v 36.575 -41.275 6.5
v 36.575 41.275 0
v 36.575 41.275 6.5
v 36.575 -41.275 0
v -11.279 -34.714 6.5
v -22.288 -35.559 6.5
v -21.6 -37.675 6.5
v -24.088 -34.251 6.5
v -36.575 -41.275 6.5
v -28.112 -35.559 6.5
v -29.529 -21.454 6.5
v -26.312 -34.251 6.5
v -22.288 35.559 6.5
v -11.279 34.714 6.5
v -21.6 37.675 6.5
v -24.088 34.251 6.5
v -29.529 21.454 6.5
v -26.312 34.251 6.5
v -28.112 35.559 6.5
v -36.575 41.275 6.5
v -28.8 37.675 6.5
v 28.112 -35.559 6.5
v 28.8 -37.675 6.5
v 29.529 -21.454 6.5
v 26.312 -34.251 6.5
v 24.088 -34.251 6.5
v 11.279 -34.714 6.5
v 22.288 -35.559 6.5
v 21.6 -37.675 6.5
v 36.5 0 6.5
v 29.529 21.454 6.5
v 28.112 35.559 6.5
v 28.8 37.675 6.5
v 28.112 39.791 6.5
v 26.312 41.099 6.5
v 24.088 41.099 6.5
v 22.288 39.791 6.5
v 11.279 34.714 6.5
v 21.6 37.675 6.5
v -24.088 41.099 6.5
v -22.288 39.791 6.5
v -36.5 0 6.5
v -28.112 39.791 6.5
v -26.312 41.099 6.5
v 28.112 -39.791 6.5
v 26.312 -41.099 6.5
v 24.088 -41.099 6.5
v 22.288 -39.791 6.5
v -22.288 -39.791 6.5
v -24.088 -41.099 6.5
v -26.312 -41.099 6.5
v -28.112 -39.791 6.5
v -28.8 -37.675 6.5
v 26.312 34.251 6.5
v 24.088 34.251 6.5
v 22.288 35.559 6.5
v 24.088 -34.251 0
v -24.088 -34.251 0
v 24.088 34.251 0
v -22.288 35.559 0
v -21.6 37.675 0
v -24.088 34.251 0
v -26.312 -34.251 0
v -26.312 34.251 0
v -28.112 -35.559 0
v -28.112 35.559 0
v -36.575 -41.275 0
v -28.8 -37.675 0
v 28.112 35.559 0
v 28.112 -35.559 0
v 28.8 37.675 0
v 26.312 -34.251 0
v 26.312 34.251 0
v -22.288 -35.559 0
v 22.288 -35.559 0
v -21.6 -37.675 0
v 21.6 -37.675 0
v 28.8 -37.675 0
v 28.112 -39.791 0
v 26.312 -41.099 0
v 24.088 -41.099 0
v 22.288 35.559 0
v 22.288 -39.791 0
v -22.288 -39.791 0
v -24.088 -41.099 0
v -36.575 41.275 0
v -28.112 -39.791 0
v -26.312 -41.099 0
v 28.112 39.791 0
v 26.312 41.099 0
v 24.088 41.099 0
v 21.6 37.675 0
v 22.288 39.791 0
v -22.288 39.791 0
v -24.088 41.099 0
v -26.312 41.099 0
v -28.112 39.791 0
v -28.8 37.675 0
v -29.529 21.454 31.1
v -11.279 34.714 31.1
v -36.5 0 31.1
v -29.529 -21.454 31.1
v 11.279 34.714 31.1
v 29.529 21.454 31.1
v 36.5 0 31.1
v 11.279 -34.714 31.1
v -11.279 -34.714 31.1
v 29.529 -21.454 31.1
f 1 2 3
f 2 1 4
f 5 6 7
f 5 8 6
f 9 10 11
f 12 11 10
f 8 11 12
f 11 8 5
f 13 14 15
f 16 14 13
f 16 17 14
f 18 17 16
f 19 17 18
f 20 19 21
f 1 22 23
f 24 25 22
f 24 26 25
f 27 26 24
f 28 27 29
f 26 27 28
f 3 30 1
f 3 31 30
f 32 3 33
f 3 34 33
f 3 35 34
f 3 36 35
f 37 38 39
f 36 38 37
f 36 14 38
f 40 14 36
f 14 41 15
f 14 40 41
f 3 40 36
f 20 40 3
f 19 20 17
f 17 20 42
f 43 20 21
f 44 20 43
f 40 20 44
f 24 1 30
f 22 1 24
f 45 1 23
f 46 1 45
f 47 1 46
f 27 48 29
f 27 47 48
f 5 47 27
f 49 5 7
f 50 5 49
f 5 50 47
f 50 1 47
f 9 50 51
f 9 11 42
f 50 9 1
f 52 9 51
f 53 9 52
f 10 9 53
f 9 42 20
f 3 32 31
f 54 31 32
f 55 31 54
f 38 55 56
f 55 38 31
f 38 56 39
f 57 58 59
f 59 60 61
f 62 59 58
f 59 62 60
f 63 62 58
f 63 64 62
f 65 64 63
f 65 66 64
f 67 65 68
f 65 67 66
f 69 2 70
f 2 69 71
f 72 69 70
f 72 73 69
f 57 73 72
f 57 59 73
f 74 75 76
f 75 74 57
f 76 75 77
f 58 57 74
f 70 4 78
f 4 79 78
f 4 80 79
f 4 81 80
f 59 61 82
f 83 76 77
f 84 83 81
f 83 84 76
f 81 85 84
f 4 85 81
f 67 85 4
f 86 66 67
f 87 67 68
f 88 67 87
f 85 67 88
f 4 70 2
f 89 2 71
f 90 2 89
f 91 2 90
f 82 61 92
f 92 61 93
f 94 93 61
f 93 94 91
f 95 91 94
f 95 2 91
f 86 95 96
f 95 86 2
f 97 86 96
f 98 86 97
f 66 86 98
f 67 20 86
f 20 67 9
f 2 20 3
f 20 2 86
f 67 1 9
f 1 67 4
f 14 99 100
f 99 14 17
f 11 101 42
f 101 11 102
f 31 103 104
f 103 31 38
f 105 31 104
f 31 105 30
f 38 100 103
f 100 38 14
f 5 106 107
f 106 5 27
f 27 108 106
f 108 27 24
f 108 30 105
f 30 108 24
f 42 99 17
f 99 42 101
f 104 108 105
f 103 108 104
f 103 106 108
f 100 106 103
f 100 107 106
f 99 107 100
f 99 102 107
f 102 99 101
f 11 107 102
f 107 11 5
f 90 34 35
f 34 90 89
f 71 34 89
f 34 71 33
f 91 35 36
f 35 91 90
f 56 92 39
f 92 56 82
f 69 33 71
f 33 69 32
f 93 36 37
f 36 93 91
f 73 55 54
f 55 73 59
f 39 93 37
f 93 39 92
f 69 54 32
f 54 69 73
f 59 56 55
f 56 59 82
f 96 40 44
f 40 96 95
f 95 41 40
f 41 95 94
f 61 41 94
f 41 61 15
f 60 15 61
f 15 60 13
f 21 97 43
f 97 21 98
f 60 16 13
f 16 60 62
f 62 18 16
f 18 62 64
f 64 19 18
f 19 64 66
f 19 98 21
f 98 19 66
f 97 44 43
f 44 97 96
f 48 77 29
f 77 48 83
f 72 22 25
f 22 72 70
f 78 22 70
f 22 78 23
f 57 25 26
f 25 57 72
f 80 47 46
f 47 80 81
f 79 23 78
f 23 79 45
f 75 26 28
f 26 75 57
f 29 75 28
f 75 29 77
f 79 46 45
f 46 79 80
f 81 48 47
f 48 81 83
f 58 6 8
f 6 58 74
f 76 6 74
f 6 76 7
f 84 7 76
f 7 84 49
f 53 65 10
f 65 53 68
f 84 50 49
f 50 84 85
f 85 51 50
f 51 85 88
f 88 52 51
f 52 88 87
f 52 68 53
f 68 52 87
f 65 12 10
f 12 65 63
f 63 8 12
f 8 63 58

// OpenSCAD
// ----- ----- Sensor LakeShore ----- ----- //
res=10;

folga1=0.15;
folga2=0.05;

alt_cil=30;
compriLS=102;
espLS=1.1;
largLS=3.9;
R=9.2/2;
Rr=8.95/2;
r=5.75/2;
alt_cil2=4.35;
alt_trapCil=4;

espSup=3;
espSup2=5;
entre_fixa=(55.9+45.75)/2;
r_furo=6.35/2;

xgBase=73.15;
ygBase=82.55;
zgBase=6.5;
rG=73/2;
altG=31.1;
r_furoGbase=7.2/2;
entreFurosGbase=(43.25+57.55)/2;

/*
// ----- ----- Sensor LakeShore ----- ----- //
cylinder(alt_cil,R,R,$fn=res);
translate([0,0,alt_cil])cylinder(alt_cil2,Rr,Rr,$fn=res);
translate([0,0,alt_cil+alt_cil2])cylinder(alt_trapCil,Rr,r,$fn=res);
translate([-largLS/2,-espLS/2,alt_cil+alt_cil2+alt_trapCil])cube([largLS,espLS,compriLS]);

// ----- ----- Suporte do Sensor ----- ----- //
difference(){
    translate([0,0,0]){
        cylinder(alt_cil,R+folga1+espSup,R+folga1+espSup,$fn=res);
        translate([0,0,alt_cil])cylinder(alt_cil2,Rr+folga1+espSup,Rr+folga1+espSup,$fn=res);
        translate([0,0,alt_cil+alt_cil2])cylinder(alt_trapCil,Rr+folga1+espSup,r+folga1+espSup,$fn=res);
        translate([0,entre_fixa/2,0])cylinder(espSup2,R+folga1+espSup,R+folga1+espSup,$fn=res);
        translate([0,-entre_fixa/2,0])cylinder(espSup2,R+folga1+espSup,R+folga1+espSup,$fn=res);
        translate([-(R+folga1+espSup),-entre_fixa/2,0])cube([2*(R+folga1+espSup),entre_fixa,espSup2]);
    }
    #cylinder(alt_cil,R+folga1,R+folga1,$fn=res);
    #translate([0,0,alt_cil])cylinder(alt_cil2,Rr+folga1,Rr+folga1,$fn=res);
    #translate([0,0,alt_cil+alt_cil2])cylinder(alt_trapCil,Rr+folga1,r+folga1,$fn=res);
    #translate([0,entre_fixa/2,0])cylinder(espSup2,r_furo+folga1,r_furo+folga1,$fn=res);
    #translate([0,-entre_fixa/2,0])cylinder(espSup2,r_furo+folga1,r_furo+folga1,$fn=res);
    
}
*/

// ----- ----- Goniômetro ----- ----- //
difference(){
    translate([0,0,0]){
        translate([-xgBase/2,-ygBase/2,0])cube([xgBase,ygBase,zgBase]);
        translate([0,0,0])cylinder(altG,rG,rG,$fn=res);
        //translate([0,0,alt_cil])cylinder(alt_cil2,Rr+folga1+espSup,Rr+folga1+espSup,$fn=res);
        //translate([0,0,alt_cil+alt_cil2])cylinder(alt_trapCil,Rr+folga1+espSup,r+folga1+espSup,$fn=res);
        //translate([0,entre_fixa/2,0])cylinder(espSup2,R+folga1+espSup,R+folga1+espSup,$fn=res);
        //translate([0,-entre_fixa/2,0])cylinder(espSup2,R+folga1+espSup,R+folga1+espSup,$fn=res);
        //translate([-(R+folga1+espSup),-entre_fixa/2,0])cube([2*(R+folga1+espSup),entre_fixa,espSup2]);
    }
    #translate([entreFurosGbase/2,ygBase/2-r_furoGbase,0])#cylinder(zgBase,r_furoGbase,r_furoGbase,$fn=res);
    #translate([-entreFurosGbase/2,ygBase/2-r_furoGbase,0])#cylinder(zgBase,r_furoGbase,r_furoGbase,$fn=res);
    #translate([entreFurosGbase/2,-ygBase/2+r_furoGbase,0])#cylinder(zgBase,r_furoGbase,r_furoGbase,$fn=res);
    #translate([-entreFurosGbase/2,-ygBase/2+r_furoGbase,0])#cylinder(zgBase,r_furoGbase,r_furoGbase,$fn=res);
    //#translate([0,0,alt_cil])cylinder(alt_cil2,Rr+folga1,Rr+folga1,$fn=res);
    //#translate([0,0,alt_cil+alt_cil2])cylinder(alt_trapCil,Rr+folga1,r+folga1,$fn=res);
    //#translate([0,entre_fixa/2,0])cylinder(espSup2,r_furo+folga1,r_furo+folga1,$fn=res);
    //#translate([0,-entre_fixa/2,0])cylinder(espSup2,r_furo+folga1,r_furo+folga1,$fn=res);
    
}
